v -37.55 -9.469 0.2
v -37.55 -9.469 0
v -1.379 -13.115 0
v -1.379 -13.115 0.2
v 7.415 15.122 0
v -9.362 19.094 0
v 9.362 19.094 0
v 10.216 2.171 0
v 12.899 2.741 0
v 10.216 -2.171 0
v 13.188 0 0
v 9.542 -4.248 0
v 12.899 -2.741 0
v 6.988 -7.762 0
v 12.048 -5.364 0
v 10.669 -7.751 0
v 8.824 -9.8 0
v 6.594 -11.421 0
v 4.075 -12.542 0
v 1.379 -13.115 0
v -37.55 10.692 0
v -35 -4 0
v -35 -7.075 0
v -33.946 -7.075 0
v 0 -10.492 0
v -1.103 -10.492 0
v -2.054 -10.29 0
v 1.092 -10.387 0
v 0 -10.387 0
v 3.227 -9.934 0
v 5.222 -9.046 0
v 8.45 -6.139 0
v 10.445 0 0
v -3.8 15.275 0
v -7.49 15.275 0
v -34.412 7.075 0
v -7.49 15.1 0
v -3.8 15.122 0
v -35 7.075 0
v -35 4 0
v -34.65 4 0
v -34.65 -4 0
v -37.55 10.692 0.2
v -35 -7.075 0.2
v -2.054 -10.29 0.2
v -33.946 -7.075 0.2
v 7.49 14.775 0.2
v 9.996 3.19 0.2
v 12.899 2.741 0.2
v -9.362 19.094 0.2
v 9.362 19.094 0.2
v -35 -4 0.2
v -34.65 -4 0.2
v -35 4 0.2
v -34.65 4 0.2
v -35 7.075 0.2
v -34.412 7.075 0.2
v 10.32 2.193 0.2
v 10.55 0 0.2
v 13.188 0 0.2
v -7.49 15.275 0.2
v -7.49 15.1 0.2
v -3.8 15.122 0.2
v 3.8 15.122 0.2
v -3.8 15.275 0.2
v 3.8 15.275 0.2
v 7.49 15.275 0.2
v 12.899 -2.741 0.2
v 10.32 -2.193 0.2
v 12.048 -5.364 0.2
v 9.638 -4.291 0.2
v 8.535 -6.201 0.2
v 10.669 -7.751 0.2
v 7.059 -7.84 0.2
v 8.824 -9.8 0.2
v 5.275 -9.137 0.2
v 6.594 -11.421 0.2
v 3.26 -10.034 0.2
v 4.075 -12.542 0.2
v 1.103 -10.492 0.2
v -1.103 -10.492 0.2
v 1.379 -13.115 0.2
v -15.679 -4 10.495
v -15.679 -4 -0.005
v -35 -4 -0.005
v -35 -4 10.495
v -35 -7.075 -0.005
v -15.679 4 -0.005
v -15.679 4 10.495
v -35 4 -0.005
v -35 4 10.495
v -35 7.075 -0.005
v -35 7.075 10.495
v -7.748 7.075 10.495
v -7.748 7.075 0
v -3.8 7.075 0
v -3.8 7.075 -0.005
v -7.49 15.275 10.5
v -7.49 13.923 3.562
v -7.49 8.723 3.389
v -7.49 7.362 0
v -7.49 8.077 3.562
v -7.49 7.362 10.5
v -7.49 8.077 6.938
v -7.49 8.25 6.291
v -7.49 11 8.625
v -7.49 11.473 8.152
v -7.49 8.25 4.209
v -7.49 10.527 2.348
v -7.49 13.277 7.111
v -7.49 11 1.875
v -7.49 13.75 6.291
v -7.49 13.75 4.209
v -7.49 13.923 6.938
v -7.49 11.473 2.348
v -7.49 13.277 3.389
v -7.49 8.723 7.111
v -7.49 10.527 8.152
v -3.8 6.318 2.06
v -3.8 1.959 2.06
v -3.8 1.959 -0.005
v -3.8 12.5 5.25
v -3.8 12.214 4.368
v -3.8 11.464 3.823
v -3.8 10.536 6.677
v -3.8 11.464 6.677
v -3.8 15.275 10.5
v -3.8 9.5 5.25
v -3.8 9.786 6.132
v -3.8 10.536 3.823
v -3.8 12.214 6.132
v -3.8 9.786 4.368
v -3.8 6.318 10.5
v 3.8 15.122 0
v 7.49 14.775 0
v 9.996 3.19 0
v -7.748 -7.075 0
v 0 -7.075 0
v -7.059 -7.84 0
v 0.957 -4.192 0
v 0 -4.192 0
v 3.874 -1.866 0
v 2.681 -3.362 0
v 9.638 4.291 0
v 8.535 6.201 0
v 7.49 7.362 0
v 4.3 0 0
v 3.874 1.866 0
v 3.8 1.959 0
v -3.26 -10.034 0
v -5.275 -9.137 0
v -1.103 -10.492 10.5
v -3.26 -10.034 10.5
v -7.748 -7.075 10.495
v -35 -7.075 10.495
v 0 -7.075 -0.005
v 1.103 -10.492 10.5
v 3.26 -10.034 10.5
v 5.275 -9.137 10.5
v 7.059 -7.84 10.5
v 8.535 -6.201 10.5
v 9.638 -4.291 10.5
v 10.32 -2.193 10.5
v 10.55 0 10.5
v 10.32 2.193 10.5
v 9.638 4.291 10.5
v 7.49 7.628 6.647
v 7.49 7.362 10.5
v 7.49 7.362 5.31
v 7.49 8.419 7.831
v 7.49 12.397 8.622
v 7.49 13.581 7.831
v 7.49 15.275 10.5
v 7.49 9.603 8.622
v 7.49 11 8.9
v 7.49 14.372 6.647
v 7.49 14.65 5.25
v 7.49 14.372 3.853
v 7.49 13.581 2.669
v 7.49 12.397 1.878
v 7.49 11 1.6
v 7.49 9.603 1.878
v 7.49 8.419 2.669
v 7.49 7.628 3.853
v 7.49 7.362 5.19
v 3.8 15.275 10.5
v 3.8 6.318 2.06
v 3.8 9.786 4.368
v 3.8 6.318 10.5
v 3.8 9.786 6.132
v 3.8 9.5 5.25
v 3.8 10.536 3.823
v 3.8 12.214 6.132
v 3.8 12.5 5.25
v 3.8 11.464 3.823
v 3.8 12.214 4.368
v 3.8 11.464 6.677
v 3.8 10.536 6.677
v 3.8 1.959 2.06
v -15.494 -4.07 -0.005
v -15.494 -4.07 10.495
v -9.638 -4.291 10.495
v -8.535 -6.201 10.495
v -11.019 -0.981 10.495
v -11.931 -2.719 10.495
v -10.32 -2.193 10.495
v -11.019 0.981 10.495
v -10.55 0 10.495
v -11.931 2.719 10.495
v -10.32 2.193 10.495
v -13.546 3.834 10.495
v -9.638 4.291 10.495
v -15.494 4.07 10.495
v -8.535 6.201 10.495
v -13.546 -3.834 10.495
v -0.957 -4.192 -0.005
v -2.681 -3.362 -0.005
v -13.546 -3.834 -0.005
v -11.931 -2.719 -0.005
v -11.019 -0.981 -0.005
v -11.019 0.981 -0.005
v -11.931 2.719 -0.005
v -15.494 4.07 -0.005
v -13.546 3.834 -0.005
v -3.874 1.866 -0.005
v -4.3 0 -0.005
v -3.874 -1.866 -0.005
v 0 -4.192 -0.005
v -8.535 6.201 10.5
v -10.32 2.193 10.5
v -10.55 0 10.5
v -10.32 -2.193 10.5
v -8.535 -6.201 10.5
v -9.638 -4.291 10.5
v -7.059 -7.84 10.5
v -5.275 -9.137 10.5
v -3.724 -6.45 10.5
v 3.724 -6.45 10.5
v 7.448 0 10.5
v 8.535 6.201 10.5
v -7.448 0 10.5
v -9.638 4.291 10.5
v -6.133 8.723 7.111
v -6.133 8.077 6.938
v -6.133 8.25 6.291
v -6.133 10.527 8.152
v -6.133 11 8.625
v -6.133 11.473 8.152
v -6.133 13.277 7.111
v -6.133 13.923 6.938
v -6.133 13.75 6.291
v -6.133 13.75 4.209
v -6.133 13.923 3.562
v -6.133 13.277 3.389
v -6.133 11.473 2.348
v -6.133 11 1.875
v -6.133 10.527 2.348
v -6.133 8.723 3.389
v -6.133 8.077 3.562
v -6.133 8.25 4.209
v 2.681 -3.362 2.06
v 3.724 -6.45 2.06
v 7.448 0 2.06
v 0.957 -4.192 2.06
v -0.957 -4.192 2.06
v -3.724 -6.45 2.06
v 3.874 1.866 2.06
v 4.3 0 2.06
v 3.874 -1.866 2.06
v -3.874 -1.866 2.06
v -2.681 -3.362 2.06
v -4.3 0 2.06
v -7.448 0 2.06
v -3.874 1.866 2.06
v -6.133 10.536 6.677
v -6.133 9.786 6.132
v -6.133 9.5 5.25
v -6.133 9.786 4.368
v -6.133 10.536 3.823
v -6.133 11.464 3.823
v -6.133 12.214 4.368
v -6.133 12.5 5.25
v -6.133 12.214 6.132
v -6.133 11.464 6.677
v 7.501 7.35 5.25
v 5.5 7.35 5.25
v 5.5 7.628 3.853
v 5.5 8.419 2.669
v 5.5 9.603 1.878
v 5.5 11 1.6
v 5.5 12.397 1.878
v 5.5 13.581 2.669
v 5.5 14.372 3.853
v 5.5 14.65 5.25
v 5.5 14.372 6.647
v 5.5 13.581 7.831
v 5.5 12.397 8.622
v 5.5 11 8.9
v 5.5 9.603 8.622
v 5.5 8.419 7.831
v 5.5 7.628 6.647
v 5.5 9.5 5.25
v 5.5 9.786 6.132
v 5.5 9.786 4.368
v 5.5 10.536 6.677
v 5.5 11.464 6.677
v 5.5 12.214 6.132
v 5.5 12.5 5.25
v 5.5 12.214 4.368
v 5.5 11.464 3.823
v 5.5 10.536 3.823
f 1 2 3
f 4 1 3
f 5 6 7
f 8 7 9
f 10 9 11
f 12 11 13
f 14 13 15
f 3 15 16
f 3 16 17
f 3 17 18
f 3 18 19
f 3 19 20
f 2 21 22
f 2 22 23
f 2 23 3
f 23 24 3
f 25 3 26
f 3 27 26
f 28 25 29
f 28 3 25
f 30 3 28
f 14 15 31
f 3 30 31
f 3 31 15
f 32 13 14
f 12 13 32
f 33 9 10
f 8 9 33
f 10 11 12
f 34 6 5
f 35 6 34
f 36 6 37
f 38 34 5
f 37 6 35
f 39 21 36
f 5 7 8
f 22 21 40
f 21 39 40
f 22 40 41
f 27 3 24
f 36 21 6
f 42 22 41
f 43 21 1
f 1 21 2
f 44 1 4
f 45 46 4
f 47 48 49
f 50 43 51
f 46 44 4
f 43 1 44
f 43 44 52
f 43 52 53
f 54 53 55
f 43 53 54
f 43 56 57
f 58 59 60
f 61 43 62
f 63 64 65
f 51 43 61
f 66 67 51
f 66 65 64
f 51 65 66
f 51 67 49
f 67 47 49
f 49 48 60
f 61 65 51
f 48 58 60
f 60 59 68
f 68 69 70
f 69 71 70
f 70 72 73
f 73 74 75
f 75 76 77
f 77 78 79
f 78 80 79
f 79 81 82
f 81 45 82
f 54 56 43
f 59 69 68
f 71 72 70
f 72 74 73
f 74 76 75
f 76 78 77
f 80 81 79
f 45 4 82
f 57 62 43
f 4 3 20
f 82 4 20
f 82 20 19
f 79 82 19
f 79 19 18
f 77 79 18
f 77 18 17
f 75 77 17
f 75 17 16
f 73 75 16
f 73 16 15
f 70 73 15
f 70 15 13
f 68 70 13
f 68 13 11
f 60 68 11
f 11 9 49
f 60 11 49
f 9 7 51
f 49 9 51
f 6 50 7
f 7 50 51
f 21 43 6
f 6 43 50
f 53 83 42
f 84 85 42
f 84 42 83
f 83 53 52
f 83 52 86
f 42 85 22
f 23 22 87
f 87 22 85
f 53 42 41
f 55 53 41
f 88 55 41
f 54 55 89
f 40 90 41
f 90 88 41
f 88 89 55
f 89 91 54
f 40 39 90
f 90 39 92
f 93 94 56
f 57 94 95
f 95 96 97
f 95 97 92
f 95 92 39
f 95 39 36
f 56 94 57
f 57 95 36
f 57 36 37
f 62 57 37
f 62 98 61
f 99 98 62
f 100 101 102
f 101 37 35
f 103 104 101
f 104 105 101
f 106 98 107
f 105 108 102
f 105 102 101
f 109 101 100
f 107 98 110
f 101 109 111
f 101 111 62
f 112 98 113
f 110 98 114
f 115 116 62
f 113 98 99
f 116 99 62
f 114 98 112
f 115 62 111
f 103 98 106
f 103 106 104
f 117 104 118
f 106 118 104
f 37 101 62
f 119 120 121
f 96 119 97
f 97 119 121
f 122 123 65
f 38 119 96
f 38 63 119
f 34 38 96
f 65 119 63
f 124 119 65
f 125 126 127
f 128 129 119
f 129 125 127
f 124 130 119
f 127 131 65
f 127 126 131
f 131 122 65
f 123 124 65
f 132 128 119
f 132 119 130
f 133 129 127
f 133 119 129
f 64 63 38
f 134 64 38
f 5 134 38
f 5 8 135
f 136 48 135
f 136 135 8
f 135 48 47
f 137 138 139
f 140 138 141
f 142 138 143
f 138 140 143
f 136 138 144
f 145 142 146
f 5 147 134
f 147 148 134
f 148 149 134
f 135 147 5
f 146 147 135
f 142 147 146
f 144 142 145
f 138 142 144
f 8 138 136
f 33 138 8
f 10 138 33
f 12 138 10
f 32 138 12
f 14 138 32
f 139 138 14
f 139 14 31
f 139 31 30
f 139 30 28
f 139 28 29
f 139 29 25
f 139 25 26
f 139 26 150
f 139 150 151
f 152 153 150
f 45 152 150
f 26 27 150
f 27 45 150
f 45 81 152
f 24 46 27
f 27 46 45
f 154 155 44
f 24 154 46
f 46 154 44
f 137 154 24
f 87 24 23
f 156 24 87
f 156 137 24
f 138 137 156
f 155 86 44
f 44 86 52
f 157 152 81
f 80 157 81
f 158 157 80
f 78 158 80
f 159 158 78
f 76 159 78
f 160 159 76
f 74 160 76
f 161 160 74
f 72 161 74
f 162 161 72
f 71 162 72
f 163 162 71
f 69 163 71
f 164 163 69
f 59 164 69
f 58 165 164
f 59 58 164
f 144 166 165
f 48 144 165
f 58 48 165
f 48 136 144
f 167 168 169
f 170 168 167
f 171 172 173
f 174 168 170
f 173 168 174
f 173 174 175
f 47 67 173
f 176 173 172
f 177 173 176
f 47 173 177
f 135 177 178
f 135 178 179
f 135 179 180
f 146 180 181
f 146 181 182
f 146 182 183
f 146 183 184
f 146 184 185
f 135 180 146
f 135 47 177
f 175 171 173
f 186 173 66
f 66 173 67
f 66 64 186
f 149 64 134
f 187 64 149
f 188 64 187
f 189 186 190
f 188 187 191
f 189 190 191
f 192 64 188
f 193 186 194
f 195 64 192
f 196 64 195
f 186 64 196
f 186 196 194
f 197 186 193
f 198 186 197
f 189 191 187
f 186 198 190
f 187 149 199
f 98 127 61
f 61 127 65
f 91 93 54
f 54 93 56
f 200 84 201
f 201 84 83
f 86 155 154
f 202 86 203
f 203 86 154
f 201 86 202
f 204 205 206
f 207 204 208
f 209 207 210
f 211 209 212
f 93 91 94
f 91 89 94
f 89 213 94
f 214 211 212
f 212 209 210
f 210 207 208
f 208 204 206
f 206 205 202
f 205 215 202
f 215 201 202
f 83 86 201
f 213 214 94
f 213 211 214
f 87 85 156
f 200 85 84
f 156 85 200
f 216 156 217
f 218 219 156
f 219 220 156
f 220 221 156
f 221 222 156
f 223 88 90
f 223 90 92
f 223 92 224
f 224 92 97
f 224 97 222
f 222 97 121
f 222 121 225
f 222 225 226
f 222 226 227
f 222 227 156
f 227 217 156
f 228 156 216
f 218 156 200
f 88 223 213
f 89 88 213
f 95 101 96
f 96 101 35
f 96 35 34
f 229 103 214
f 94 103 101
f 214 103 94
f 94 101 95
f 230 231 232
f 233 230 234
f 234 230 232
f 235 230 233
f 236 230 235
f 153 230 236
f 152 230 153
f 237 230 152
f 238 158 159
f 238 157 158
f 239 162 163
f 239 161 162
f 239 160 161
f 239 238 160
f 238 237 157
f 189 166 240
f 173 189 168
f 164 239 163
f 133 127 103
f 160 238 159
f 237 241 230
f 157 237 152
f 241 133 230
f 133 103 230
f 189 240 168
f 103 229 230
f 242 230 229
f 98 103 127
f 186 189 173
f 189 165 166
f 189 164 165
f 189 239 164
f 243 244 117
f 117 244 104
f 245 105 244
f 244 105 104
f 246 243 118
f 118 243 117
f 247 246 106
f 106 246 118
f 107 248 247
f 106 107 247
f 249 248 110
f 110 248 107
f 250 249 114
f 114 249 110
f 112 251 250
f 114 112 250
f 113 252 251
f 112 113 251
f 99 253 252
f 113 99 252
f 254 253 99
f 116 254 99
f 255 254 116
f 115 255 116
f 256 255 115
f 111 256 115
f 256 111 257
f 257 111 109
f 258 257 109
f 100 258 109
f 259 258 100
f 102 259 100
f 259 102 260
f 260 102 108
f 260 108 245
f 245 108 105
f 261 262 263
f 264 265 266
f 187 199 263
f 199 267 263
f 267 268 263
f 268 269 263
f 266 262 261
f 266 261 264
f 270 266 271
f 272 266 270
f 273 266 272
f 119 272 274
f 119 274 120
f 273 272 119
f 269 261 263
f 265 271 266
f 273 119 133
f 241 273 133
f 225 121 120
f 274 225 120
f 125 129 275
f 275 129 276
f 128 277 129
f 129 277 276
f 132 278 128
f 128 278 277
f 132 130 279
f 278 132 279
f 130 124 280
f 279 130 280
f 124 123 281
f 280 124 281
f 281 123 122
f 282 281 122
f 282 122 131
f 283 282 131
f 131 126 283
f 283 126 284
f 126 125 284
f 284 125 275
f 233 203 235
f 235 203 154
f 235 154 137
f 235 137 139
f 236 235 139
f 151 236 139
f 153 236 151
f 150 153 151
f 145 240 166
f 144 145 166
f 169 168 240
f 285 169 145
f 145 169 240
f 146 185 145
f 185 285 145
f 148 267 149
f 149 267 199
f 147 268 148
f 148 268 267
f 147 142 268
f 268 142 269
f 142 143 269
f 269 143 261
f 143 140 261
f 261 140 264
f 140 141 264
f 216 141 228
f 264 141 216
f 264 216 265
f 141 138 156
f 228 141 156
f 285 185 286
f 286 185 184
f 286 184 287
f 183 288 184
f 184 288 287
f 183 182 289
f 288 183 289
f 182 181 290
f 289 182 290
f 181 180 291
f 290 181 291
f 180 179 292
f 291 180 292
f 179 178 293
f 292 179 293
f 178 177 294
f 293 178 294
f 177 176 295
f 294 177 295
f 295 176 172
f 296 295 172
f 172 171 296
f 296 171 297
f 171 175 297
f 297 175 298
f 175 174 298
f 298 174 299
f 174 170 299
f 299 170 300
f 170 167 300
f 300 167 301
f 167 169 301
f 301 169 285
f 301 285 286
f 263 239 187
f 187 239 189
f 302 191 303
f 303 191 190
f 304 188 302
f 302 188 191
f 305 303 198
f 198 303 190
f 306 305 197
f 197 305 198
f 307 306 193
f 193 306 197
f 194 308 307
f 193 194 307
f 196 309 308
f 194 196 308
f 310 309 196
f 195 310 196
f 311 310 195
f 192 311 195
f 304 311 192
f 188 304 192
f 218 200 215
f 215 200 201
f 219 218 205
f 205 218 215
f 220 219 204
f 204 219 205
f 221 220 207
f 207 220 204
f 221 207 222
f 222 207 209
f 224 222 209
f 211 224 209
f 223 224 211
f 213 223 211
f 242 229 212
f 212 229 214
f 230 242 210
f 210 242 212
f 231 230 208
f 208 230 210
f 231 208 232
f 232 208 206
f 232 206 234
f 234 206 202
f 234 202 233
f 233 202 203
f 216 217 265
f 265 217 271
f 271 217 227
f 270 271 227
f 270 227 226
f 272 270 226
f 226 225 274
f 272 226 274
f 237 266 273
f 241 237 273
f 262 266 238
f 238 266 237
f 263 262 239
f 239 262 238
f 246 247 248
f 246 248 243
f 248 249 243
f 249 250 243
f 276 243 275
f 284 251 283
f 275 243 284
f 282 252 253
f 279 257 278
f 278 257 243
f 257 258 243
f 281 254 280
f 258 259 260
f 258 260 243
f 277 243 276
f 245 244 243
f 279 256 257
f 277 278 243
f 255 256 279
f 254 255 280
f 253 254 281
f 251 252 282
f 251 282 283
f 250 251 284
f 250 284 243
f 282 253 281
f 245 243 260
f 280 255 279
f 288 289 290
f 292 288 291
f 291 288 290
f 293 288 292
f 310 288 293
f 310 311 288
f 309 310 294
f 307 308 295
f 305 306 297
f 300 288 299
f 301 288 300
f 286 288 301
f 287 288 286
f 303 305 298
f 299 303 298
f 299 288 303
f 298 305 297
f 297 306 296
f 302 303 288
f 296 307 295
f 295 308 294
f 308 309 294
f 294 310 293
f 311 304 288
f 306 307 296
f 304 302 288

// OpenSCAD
/*
 * Z Isolator with Securing nut
 *
 * (C) Michel Pollet <buserror@gmail.com>
 *
This is a redesign of http://www.thingiverse.com/thing:20147
That existing piece does the job for constant (increasing)
Z movement, however it fails to control any backlash for the
Z nut when doing the Z calibration phase and also when using
"Lift between moves" in Slic3r or Repsnapper.

This version is parametric, and has a captured M3 captured nut
to make sure the M8 nut is held in place. The smooth rod
arms are suposed to be 'snug' too, having them slack will add
backlash again.

The original piece functionality is still there, wich is to 
make sure the X carriages are decoupled from the Z axis, 
preventing very successfuly the "Z wobble" when the threaded
rods move jerk the X carriage back/forth.

As an added bonus, making sure the Z nut is secured prevents
accidents if you lower the head 'under' the bed... If you
do this on a normal prusa, the nut exits it's housing and 
you have to re-level the whole bed.
 */

// change this to 1 to get the screw tighener on the side
ScrewOnSide = 1;

NutR = 12.9 / 2;
NutH = 6.40;
RodR = (7.6 / 2);
SRodR = 8 / 2;
WallW = 4.1;
E = 0.01;

GuideL = 35;
GuideW = (SRodR * 2) + (WallW * 1.5);

ScrewL = 10;
ScrewW = (RodR * 2) + (WallW * 1.8);
ScrewNutR = 5.5 / 2;
ScrewNutH = 2;
ScrewThreadR = 3 / 2;
ScrewWasheR = 7.3 / 2;
ScrewNutInset = WallW / 3;
ScrewWasherInset = 2;

raft = 1;
pair = 1;

if (raft == 1) {
	difference() {
		linear_extrude(height=0.20) difference() {
			scale([1.25,1.25,0])
				projection(cut = true) hull() zizoprint();
			scale([0.99,0.99,1.01])
				projection(cut = true) hull() zizoprint();
		}
		translate([-GuideL-NutR-WallW-2, -10, -1]) cube([10,22, 2]);
	}
	zizoprint();
} else {
	if (pair == 1) {
		rotate(-45,0,0) {
			rotate([180,0,0])
				zizolator();
			translate([GuideL-NutR-ScrewL+1+(ScrewOnSide*3), 18.5, 0])
				rotate([0,180,0])
					zizolator();
		}
	} else
		rotate([0,180,0])
			zizolator();
}

module zizoprint() {
	rotate([0,180,0]) 
	translate([0,0,-(NutH + WallW)])
		zizolator();
}


module zizolator() {
	difference() {
		union() {
			cylinder(r = WallW + NutR, h = NutH + WallW /*, $fn=6 */);
			
			translate([GuideL / 2, 0, (NutH + WallW + E) / 2])	
				cube([GuideL, GuideW, NutH + WallW], center = true);
		
			rotate([0,0,-90 * ScrewOnSide])
			translate([-(((NutR+WallW)/2) + ScrewL), -(ScrewW/2), 0])
				cube([ScrewL, ScrewW, NutH + WallW]);		
		}
		translate([0,0,-E]) {
			nut(d = (NutR) * 2, h = NutH + (WallW/2), horizontal=false);
			cylinder(r = SRodR + 0.3, h = NutH + (2*WallW));
		
			rotate([0,0,-90 * ScrewOnSide])
			translate([-20, -RodR, 0])
				cube([20, RodR*2, NutH + (2*WallW)]);
		
			translate([15, 0, 0]) {
				cylinder(r = SRodR + 0.1, h = NutH + (2*WallW));
				translate([0, -SRodR, 0])
					cube([GuideL, SRodR*2, NutH + (2*WallW)]);
			}
		}
		rotate([0,0,-90 * ScrewOnSide])
		translate([-ScrewL-ScrewThreadR+0.5, 0, (NutH + WallW)/ 2]) {
			translate([0,(NutR * 1.5),0])
				rotate([90,00,0])
					cylinder(h = (NutR * 3), r = ScrewThreadR, $fn = 10);
			translate([0,ScrewNutInset+(ScrewW/2)+E,0])
				rotate([90,30,0])
					nut(h = ScrewNutInset*2, d = ScrewNutR*2);
			translate([0,-(ScrewW/2)+ScrewWasherInset-E,0])
				rotate([90,00,0])
					cylinder(h = ScrewWasherInset*2, r = ScrewWasheR, $fn = 16);
		}
	}
}


// PRUSA Mendel  
// Functions used in many files
// GNU GPL v3
// Josef Průša
// josefprusa@me.com
// prusadjs.cz
// http://www.reprap.org/wiki/Prusa_Mendel
// http://github.com/prusajr/PrusaMendel


module nut(d,h,horizontal=true){
cornerdiameter =  (d / 2) / cos (180 / 6);
cylinder(h = h, r = cornerdiameter, $fn = 6);
if(horizontal){
for(i = [1:6]){
	rotate([0,0,60*i]) translate([-cornerdiameter-0.2,0,0]) rotate([0,0,-45]) cube(size = [2,2,h]);
}}
}
